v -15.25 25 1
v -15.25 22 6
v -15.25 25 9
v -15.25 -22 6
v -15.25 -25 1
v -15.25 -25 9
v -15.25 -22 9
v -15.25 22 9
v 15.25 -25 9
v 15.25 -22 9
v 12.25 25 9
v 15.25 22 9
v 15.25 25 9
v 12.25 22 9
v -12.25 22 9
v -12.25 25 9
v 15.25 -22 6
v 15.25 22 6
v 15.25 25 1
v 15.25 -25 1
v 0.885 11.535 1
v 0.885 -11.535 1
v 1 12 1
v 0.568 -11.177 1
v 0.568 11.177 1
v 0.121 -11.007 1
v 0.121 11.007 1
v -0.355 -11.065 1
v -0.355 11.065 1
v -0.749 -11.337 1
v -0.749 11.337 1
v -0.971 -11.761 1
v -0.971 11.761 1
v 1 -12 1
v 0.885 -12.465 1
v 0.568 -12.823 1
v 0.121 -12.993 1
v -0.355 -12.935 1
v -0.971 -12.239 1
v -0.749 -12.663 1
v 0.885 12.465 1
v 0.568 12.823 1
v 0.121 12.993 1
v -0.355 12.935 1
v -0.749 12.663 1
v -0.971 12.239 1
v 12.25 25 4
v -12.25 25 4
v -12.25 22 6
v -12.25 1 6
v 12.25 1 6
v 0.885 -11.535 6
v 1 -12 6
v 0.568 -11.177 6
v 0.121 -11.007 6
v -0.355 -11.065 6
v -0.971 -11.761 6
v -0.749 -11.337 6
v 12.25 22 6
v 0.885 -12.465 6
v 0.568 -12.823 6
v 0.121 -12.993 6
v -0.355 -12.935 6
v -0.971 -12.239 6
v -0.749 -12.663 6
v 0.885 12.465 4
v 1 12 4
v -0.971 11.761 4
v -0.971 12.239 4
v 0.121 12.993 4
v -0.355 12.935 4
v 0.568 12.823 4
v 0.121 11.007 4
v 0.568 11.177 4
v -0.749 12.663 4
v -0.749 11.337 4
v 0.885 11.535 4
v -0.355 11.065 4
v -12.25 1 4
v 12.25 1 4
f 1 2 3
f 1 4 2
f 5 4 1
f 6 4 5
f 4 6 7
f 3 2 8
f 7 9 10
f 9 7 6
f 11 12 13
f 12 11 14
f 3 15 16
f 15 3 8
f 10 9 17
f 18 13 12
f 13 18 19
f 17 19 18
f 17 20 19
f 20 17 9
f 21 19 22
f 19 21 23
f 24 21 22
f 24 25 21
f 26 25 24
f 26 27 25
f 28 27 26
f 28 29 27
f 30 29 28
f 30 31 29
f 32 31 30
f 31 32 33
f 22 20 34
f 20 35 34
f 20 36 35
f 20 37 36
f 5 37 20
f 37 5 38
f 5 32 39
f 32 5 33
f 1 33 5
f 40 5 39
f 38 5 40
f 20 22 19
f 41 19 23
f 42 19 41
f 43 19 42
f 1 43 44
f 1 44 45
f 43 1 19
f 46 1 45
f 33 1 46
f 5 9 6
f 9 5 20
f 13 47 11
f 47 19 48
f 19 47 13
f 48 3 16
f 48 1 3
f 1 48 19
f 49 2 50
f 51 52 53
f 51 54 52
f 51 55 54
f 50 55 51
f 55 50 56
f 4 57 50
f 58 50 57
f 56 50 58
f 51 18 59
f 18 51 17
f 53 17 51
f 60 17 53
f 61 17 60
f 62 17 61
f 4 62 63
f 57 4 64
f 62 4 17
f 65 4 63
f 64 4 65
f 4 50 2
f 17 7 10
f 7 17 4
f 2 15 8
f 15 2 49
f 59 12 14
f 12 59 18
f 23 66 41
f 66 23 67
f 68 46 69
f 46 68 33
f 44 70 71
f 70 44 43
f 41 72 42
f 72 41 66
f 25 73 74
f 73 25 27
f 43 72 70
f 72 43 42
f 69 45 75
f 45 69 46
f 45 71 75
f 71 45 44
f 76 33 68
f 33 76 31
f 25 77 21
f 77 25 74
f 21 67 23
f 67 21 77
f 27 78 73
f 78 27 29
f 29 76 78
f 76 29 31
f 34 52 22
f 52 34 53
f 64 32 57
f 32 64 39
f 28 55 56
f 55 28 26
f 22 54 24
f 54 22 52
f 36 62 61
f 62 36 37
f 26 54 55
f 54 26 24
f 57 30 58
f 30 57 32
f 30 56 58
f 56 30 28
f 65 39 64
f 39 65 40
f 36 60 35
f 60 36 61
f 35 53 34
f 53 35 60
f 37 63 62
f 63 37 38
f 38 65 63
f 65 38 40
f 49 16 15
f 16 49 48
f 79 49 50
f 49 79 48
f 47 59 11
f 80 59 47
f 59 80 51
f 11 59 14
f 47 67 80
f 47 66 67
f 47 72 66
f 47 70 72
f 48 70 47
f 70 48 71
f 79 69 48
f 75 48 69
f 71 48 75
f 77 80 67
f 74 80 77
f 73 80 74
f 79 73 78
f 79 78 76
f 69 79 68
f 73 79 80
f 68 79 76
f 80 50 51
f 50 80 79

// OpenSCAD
$fa = 0.5;
$fs = 0.5;

// dimensions beams
b_y = 44;
b_z = 24.5;

d_drill = 8;

// Drilling template


difference(){
  translate([0,0,5]) cube([b_z+6, b_y+6, 8], center=true);
  translate([0,0,10]) cube([b_z+8, b_y, 8], center=true);
  //bohrungen
  #translate([0,12,-2]) cylinder(h=12, d=2);
  #translate([0,-12,-2]) cylinder(h=12, d=2);
  // schiene
  #translate([-b_z/2,1,4]) cube([b_z, 30, 8]);
}
